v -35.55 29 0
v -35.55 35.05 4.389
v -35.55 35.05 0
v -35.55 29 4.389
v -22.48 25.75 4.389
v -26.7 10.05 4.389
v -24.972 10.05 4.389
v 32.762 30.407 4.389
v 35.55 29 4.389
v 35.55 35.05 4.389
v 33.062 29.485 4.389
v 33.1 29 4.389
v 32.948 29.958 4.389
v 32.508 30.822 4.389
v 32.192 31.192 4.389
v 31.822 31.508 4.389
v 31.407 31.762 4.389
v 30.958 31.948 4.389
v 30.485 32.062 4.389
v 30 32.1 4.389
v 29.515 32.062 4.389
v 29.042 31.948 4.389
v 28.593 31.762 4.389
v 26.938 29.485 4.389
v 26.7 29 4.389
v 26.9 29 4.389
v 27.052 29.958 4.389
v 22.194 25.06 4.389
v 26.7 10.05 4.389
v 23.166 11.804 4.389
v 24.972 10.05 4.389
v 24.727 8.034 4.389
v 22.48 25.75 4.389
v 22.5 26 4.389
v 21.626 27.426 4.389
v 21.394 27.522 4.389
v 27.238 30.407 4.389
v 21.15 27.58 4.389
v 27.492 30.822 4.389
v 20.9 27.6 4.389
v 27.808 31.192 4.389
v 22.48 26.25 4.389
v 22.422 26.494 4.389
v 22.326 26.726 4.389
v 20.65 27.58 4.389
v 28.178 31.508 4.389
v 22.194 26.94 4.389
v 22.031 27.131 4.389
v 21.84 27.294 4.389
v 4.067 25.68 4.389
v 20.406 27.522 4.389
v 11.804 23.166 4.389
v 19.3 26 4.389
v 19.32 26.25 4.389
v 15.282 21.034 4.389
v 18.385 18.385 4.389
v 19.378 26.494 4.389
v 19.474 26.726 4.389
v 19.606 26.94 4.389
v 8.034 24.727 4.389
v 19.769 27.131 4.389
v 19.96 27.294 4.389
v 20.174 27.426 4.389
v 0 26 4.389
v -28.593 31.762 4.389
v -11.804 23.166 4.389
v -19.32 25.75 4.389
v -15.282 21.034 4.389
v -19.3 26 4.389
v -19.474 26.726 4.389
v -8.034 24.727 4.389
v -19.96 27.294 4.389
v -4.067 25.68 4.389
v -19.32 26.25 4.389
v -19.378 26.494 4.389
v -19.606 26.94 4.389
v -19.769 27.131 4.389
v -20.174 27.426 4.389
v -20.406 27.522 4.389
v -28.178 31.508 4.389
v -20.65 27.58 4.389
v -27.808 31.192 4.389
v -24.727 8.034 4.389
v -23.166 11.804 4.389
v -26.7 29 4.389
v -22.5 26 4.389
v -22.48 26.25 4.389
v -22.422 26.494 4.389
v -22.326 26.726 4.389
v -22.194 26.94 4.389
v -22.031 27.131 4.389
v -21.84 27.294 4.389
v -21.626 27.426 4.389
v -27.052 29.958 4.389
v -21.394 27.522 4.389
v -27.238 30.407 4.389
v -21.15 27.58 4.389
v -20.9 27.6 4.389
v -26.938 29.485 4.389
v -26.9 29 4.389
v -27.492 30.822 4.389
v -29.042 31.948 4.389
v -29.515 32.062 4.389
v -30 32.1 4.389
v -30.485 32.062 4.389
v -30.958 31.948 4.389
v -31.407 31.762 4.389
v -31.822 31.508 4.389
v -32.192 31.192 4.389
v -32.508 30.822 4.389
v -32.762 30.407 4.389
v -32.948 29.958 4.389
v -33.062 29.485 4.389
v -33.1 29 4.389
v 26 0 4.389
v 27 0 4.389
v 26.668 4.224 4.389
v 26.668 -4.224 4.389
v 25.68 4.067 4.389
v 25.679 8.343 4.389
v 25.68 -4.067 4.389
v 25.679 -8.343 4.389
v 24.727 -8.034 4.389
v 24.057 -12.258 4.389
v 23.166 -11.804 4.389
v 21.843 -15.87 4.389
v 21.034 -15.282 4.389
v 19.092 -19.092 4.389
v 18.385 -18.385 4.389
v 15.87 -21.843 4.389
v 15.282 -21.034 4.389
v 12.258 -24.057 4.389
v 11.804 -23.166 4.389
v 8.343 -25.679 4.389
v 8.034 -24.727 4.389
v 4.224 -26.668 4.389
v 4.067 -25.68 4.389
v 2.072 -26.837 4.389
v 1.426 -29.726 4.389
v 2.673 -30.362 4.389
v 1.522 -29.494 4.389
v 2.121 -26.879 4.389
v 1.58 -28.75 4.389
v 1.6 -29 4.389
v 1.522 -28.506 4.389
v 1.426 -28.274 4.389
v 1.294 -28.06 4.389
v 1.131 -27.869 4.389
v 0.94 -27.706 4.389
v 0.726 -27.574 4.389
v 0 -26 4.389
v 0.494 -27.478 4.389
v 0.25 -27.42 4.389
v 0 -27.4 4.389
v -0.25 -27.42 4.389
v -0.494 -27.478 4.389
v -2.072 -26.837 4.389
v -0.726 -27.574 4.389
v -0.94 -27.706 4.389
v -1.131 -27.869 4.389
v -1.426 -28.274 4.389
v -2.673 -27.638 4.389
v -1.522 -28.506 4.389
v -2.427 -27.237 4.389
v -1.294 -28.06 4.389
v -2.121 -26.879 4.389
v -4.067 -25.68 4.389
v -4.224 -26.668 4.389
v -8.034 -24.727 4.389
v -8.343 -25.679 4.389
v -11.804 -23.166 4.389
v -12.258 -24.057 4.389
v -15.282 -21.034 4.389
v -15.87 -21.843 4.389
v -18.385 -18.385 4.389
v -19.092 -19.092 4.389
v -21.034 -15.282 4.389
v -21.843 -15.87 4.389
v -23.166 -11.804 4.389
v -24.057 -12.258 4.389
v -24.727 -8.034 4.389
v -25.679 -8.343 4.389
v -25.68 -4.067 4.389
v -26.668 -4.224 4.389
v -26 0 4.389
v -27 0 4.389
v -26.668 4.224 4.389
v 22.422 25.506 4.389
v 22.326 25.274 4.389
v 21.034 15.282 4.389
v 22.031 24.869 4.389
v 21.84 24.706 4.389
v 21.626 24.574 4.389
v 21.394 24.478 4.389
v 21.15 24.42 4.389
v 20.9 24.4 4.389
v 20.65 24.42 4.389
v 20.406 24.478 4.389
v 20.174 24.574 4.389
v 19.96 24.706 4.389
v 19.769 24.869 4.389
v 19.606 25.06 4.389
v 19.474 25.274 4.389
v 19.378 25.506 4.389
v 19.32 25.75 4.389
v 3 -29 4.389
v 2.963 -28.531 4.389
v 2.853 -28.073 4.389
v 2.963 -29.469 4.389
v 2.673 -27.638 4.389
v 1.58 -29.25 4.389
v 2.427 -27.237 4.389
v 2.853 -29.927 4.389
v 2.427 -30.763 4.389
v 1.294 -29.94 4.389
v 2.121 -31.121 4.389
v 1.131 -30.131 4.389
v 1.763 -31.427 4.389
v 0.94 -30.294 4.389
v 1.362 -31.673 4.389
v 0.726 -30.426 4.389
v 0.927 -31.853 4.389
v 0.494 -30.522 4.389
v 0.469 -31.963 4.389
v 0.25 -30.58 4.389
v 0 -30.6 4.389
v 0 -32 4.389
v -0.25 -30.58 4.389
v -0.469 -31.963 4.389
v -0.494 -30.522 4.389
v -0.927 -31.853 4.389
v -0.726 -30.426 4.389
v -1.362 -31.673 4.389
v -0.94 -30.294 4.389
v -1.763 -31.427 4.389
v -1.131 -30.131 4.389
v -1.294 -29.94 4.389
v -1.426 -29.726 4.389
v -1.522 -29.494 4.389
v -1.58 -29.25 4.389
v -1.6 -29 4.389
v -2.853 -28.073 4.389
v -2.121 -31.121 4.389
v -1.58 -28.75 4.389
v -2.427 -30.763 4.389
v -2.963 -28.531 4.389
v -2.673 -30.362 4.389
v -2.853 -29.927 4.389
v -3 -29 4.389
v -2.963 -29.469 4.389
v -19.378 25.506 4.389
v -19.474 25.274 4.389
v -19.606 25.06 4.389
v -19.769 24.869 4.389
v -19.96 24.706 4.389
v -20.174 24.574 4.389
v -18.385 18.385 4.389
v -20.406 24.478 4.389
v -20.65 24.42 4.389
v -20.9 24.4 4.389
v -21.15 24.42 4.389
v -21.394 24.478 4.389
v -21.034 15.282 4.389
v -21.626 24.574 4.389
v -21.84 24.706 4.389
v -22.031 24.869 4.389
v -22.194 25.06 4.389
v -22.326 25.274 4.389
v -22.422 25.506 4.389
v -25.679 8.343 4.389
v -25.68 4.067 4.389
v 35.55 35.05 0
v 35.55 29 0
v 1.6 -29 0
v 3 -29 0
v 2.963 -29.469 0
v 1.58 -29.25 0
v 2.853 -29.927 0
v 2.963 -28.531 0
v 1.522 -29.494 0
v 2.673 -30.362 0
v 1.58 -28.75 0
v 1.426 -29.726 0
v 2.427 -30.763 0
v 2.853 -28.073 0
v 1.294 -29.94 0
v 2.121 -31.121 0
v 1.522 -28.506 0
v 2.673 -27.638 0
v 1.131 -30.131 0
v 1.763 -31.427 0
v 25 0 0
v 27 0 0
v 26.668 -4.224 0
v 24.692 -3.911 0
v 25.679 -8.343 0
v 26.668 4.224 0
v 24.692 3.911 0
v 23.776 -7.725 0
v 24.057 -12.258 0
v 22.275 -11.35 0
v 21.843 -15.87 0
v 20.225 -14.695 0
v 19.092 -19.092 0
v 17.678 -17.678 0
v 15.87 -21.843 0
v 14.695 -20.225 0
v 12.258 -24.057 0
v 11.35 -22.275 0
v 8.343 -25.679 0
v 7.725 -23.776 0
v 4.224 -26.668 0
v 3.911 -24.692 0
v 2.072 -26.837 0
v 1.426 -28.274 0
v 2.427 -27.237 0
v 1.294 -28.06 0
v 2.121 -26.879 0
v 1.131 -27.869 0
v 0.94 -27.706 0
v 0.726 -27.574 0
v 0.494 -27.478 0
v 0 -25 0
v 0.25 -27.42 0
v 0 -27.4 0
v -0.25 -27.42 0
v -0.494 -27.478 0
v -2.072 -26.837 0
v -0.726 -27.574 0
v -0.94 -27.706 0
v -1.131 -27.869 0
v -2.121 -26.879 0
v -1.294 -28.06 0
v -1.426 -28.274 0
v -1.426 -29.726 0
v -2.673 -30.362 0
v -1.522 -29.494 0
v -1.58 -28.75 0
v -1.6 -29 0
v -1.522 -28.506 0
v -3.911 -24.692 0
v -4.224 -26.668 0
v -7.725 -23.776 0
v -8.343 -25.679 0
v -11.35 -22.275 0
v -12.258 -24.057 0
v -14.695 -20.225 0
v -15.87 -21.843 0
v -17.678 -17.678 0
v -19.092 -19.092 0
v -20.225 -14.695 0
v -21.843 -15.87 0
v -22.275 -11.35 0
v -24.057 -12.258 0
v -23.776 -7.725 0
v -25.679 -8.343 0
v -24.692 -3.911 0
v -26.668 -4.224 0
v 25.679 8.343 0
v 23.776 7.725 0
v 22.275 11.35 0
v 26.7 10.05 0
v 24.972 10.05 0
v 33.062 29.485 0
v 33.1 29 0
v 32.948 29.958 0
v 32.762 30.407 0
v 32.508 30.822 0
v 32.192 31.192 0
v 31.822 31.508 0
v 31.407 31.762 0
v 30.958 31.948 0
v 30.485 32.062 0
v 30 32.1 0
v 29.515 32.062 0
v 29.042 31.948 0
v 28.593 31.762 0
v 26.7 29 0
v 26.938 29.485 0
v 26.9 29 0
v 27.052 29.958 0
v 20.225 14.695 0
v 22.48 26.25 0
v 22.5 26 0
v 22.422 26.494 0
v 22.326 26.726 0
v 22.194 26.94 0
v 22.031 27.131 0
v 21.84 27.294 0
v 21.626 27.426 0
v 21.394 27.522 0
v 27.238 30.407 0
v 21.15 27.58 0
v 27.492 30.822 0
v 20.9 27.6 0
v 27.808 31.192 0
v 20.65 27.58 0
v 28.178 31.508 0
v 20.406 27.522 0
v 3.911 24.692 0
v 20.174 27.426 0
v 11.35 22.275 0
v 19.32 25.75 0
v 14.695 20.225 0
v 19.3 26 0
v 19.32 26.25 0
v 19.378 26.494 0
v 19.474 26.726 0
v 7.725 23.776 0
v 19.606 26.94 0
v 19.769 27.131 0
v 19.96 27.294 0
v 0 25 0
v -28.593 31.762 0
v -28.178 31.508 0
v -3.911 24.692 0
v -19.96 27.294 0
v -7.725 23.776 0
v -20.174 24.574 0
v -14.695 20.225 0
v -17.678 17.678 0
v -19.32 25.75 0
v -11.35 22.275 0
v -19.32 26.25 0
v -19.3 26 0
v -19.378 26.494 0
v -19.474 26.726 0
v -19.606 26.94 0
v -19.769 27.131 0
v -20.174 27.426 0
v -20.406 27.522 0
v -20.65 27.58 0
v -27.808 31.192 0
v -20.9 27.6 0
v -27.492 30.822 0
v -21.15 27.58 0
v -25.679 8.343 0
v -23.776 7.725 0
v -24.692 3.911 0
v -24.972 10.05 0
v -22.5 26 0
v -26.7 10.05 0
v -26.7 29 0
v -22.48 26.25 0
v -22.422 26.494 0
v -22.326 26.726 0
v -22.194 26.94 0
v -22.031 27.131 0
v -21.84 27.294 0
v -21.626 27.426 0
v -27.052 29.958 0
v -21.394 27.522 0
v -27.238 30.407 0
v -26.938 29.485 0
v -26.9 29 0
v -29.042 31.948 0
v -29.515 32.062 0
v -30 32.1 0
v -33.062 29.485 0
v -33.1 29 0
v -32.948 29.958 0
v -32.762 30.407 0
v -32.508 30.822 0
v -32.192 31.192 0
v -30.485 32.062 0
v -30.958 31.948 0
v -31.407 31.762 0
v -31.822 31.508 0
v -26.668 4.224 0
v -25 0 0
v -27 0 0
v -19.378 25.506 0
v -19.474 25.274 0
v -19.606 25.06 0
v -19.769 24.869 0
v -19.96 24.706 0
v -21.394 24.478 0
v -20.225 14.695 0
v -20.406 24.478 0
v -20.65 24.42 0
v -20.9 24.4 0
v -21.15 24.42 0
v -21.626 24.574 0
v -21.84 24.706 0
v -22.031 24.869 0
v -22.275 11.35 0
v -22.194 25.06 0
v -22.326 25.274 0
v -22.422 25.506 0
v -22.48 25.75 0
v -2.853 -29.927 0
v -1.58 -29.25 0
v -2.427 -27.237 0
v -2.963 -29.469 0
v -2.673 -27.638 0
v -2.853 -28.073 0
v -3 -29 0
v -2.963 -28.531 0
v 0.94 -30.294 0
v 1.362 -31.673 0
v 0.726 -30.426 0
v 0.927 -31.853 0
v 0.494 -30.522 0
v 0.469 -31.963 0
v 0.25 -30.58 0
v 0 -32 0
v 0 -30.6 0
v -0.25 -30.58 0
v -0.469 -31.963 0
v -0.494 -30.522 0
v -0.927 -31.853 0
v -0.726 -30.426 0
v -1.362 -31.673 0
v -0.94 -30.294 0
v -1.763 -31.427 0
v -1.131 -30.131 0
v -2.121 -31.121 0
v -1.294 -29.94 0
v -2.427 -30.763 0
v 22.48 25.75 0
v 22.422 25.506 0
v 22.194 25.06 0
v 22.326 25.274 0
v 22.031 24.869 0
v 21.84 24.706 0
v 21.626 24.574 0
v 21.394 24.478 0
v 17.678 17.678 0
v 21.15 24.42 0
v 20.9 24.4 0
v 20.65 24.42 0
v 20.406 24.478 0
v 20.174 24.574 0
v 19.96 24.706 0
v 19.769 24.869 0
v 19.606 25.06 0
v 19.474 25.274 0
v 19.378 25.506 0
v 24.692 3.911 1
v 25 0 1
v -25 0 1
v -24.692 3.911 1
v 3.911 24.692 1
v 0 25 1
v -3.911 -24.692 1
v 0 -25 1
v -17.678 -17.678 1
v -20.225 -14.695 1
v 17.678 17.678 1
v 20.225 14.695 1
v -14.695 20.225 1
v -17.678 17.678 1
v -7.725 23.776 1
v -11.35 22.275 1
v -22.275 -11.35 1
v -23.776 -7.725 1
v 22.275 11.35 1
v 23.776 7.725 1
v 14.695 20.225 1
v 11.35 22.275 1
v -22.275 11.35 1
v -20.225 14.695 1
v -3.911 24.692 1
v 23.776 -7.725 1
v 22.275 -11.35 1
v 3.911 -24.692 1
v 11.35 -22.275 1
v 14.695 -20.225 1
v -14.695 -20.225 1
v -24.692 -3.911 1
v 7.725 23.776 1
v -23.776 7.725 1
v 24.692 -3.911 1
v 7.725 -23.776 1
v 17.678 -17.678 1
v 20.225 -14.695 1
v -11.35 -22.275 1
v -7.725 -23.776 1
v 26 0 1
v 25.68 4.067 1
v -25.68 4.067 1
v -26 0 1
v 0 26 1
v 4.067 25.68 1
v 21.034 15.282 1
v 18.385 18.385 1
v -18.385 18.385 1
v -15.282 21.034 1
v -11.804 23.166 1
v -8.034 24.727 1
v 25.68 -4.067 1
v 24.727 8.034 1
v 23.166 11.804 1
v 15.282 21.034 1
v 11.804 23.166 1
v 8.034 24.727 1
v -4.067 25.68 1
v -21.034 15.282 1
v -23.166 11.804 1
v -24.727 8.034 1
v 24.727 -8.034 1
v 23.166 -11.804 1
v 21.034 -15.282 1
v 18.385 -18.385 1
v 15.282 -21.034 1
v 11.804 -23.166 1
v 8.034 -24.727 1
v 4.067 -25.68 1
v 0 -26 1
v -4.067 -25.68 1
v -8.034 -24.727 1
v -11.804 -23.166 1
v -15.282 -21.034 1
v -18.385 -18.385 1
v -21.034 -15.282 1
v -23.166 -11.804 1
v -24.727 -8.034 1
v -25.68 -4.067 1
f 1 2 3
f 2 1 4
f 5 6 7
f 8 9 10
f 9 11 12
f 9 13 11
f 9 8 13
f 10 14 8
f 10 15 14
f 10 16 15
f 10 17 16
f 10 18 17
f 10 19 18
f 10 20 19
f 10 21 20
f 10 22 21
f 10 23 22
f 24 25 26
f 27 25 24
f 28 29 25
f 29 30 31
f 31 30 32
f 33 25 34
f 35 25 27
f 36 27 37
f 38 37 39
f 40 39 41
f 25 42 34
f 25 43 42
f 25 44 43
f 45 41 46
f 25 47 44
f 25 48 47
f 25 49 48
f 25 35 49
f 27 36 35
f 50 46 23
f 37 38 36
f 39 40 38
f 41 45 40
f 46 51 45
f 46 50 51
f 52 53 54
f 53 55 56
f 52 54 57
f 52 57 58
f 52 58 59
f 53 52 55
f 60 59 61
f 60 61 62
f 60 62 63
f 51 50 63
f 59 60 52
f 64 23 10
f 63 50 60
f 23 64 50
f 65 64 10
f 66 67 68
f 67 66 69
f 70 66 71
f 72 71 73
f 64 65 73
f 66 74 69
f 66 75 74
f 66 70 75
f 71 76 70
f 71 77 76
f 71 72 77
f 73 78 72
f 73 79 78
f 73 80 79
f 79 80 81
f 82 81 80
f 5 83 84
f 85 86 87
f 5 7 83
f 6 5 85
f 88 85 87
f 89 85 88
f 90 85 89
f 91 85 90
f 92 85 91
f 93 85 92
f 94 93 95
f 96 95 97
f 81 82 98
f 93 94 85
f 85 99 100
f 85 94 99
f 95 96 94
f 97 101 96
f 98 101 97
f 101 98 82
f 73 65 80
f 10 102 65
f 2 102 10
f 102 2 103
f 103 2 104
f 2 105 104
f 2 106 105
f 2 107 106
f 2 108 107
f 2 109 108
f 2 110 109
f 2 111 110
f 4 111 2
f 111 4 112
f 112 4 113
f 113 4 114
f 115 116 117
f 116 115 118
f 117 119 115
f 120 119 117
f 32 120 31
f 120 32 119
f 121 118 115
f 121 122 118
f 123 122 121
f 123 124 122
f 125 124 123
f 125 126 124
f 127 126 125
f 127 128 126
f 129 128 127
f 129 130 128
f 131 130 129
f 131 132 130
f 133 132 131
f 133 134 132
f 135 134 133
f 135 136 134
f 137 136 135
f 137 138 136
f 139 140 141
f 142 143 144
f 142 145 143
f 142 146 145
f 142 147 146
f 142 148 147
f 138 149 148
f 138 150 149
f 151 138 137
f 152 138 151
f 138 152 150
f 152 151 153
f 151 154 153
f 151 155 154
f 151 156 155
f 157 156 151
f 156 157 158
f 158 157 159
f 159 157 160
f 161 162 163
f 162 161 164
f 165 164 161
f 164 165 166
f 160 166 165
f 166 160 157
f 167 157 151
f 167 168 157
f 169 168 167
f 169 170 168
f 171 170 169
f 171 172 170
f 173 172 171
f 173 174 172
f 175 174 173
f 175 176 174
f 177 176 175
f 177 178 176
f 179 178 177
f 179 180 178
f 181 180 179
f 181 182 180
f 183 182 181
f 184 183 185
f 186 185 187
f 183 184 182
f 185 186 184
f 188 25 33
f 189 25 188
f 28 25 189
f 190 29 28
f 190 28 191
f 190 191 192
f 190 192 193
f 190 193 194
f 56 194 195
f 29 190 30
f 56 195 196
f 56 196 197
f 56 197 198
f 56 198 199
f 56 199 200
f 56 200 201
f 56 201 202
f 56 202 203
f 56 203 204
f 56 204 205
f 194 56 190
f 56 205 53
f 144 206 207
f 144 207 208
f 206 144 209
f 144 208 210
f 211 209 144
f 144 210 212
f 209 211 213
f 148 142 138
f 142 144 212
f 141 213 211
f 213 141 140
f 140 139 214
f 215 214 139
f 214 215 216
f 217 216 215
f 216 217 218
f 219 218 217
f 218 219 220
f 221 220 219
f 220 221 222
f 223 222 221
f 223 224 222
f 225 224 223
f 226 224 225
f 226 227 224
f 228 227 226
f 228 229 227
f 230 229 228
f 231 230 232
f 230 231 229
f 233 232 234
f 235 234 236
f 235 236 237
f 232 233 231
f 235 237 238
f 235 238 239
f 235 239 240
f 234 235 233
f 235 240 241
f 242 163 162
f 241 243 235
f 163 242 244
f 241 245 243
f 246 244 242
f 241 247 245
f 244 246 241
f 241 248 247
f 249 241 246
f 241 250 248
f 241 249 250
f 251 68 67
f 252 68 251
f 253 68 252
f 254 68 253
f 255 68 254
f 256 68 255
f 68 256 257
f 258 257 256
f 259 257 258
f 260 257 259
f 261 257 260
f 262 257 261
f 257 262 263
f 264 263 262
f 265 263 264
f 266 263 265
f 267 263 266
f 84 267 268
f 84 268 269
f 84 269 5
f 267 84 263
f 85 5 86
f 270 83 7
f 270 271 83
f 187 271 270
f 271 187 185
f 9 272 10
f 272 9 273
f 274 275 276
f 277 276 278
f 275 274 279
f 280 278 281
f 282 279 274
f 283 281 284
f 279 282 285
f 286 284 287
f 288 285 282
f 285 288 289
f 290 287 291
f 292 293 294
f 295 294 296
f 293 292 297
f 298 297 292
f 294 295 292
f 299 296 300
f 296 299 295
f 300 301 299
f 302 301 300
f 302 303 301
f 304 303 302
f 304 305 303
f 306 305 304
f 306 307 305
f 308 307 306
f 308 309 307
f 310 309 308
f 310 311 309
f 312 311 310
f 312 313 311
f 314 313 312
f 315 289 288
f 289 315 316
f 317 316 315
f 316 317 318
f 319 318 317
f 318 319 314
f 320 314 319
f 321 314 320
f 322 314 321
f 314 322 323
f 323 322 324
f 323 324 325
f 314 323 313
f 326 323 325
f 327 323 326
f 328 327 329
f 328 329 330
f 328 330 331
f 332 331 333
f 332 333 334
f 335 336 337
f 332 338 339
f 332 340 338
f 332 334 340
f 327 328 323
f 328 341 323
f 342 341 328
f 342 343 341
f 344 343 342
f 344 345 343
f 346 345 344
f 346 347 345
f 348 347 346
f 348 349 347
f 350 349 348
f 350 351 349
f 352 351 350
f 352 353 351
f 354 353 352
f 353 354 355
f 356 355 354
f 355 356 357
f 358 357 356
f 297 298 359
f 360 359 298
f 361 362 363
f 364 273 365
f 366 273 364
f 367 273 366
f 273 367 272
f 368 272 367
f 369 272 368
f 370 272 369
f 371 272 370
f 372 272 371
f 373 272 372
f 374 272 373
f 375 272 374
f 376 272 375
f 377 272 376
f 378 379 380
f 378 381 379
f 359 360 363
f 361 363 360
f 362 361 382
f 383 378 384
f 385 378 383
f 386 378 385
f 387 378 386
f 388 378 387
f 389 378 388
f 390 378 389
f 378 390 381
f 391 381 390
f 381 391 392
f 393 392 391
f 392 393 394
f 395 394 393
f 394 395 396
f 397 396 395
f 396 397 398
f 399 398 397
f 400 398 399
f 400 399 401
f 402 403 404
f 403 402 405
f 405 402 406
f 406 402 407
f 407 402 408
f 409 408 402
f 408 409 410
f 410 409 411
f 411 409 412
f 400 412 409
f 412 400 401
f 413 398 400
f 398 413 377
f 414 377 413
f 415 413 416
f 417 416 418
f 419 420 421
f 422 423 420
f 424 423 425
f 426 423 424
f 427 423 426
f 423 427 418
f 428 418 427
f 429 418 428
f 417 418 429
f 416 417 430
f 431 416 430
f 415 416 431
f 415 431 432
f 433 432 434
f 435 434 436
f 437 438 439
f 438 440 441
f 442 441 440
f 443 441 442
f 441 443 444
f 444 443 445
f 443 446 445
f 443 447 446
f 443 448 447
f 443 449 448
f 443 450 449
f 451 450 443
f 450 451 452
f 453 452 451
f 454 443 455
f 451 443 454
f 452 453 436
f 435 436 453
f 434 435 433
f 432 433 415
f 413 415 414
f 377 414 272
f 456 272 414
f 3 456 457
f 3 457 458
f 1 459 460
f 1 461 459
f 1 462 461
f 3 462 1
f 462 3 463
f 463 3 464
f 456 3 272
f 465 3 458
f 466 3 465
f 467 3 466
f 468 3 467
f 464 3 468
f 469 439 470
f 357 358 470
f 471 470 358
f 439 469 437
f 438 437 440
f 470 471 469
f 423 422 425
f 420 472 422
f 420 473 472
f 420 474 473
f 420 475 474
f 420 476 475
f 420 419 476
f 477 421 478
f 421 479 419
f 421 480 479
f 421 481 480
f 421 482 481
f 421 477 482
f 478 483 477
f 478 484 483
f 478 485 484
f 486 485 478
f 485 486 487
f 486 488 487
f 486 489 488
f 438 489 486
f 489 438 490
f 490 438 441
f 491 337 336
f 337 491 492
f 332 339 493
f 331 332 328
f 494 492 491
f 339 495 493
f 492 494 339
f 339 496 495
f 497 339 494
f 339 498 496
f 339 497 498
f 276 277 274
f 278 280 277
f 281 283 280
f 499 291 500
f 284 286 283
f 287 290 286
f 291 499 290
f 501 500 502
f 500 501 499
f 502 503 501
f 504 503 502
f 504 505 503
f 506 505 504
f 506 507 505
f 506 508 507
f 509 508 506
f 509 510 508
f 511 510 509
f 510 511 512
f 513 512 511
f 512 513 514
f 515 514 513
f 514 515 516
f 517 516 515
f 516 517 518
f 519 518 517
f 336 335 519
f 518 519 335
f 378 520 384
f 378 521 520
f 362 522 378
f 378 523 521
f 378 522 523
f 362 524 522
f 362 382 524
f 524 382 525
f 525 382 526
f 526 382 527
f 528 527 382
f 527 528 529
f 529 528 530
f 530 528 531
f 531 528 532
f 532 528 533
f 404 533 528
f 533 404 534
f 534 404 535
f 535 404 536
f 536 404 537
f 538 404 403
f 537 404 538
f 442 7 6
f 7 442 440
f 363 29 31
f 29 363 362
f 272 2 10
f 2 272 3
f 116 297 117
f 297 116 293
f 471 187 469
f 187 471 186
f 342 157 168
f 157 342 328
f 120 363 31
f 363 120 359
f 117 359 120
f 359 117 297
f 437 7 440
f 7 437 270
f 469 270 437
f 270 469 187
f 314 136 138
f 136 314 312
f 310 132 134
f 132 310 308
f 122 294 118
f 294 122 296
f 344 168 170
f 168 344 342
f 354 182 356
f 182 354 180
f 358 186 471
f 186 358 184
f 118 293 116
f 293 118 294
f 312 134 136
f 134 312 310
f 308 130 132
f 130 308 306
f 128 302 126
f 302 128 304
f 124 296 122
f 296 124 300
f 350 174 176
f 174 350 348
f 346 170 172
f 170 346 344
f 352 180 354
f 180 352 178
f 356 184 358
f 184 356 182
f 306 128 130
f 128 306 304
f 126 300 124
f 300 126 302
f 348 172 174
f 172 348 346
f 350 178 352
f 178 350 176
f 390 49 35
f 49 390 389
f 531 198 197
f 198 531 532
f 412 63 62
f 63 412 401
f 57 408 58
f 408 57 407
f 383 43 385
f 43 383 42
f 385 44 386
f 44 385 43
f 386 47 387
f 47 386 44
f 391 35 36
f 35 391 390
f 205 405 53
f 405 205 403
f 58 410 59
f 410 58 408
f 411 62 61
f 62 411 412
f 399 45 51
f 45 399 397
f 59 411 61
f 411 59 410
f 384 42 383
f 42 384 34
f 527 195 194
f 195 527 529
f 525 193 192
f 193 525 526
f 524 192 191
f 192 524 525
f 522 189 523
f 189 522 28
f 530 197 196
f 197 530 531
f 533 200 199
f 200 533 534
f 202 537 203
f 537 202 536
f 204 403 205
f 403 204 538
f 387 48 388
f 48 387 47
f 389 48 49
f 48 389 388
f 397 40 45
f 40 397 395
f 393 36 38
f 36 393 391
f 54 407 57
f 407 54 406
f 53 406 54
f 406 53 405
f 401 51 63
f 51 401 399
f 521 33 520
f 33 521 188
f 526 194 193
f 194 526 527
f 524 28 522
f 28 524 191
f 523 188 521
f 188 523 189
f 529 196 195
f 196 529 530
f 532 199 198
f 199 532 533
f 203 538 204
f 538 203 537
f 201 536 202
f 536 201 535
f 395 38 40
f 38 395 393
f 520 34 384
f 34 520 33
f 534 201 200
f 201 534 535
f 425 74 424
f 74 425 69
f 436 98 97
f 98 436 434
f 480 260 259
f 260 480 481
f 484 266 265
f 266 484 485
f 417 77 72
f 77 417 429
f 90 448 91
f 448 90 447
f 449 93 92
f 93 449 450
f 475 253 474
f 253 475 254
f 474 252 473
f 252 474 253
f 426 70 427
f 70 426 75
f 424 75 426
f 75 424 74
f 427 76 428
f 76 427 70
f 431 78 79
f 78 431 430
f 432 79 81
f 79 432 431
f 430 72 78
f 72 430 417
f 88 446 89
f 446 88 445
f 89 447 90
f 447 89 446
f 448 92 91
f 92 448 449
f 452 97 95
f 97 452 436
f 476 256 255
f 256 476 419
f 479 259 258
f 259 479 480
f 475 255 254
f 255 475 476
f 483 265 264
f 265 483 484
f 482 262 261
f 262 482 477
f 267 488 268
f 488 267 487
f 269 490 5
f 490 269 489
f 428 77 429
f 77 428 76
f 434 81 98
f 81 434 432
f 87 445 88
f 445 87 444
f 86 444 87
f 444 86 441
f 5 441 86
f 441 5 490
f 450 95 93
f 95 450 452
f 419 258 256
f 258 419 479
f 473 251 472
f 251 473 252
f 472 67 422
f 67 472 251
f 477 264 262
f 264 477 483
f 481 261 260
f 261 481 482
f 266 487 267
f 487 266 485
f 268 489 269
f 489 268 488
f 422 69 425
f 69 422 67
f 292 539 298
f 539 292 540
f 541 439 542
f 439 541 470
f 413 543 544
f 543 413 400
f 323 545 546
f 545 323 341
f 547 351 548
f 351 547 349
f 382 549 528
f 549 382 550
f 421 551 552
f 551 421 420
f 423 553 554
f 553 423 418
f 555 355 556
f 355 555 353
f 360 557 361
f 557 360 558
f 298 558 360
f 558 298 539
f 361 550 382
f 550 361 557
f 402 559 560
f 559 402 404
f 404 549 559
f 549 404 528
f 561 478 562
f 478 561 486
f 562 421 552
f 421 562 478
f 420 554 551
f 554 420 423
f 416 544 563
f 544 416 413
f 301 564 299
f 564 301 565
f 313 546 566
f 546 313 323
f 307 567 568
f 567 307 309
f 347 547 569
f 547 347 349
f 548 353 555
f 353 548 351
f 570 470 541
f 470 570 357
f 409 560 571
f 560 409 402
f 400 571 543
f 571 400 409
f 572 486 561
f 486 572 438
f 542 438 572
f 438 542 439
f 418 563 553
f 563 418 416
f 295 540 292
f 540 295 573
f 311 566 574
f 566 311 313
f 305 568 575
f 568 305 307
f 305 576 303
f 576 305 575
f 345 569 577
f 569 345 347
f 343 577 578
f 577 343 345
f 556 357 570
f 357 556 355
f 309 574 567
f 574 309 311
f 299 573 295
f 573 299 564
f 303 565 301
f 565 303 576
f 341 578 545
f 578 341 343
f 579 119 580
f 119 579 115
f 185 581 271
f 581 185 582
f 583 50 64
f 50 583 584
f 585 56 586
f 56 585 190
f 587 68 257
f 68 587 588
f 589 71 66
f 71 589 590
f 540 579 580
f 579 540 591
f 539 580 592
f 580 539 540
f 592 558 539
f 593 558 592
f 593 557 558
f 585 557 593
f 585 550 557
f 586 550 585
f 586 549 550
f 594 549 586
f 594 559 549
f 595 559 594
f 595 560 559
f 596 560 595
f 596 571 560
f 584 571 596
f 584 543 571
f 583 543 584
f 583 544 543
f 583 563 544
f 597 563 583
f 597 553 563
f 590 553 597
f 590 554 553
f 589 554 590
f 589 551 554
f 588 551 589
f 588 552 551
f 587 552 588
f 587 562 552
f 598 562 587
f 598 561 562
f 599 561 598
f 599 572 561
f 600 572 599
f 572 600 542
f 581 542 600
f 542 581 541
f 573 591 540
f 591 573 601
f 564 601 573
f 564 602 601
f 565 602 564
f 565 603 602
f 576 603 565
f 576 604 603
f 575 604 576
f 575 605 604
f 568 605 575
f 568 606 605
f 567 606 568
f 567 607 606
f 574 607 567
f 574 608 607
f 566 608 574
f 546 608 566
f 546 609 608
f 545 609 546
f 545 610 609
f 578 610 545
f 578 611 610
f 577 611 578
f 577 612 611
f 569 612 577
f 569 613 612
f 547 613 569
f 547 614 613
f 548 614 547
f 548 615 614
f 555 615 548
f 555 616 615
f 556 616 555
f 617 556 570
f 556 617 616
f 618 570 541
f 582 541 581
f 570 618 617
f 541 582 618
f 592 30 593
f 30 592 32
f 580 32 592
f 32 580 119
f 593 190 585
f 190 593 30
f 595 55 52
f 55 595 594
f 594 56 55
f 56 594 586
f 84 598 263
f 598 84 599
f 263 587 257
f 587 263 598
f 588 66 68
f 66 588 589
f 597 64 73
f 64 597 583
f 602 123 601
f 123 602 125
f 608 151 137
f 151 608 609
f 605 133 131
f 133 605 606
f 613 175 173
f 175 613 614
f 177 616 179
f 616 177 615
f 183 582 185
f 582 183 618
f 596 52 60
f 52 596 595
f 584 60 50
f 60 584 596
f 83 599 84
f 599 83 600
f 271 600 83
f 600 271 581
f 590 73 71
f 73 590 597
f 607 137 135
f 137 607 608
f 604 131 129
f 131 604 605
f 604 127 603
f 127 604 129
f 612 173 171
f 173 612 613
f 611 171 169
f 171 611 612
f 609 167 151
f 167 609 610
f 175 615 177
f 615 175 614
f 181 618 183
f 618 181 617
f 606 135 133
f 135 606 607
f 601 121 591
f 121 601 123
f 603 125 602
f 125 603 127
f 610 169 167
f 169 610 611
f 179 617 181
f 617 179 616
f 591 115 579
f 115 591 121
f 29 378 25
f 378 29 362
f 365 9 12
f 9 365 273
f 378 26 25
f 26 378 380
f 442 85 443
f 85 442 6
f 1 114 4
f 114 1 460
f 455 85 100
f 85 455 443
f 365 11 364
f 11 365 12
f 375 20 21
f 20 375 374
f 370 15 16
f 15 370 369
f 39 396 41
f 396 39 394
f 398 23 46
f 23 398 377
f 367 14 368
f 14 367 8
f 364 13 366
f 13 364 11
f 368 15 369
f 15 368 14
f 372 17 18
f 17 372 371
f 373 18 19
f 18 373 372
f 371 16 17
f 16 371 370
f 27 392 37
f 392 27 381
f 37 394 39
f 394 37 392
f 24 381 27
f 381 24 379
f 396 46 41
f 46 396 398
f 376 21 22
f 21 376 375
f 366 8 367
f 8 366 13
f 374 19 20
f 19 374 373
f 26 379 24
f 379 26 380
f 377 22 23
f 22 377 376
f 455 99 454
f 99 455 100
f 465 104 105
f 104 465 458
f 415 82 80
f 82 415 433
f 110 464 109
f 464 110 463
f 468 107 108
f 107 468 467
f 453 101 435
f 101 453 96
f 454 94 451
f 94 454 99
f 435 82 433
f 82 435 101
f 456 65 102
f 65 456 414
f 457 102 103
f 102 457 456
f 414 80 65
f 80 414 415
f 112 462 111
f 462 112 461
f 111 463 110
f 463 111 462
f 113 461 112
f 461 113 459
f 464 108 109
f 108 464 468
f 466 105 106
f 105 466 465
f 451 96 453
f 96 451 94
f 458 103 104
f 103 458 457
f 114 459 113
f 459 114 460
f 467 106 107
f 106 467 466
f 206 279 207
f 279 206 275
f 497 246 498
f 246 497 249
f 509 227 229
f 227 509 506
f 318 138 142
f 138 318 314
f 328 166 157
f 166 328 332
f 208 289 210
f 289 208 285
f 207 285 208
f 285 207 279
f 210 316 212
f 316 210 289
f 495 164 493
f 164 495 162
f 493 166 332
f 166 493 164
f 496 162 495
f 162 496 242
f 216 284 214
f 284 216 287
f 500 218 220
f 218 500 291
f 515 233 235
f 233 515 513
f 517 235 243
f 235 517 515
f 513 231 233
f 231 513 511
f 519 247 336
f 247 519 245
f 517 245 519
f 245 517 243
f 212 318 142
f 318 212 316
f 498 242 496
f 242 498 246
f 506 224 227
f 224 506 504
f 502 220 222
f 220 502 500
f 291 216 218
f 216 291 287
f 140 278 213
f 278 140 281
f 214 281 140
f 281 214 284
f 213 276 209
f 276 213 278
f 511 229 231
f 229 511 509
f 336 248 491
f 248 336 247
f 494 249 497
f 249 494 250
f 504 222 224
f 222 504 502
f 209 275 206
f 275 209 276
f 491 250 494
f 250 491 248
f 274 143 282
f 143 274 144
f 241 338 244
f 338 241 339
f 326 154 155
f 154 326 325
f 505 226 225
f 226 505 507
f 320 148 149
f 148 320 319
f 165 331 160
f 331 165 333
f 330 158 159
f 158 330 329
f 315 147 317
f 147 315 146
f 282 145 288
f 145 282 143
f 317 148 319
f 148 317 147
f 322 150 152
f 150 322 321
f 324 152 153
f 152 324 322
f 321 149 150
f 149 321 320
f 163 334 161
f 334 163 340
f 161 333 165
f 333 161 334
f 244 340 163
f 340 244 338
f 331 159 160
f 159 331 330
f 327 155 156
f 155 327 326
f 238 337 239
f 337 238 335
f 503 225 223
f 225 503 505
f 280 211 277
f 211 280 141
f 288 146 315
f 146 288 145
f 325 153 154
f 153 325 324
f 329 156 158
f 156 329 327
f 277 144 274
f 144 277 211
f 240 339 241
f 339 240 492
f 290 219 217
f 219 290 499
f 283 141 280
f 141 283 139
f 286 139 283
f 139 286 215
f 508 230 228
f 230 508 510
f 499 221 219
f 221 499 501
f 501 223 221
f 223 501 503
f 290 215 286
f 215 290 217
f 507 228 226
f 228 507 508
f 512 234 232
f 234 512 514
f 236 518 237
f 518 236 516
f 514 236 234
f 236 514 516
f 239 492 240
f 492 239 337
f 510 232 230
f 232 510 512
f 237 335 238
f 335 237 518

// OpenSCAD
////////////////////////////
//   ND filter holder for //
//   Thorlabs cage system //
//    CC BY SA 4.0        //
//   Chagas, AM 20220126  //
////////////////////////////


rodD = 6;
rodL = 20;
cageL = 71.1;
interRodDistance = 60;

filterD = 51.8;
filter1T = 5/3.6;
filter2T = 5/3.6+0.4;

sockT = 6;

tol = 0.1;
$fn=40;

filterThick=filter1T+3;

difference(){
            union(){
translate([0,cageL/2-rodD-7,filterThick/2]){
        cube([cageL,25,filterThick],center=true);
}//translate
cylinder(d=filterD+2*tol+2,h=filterThick);
}//union
    union(){
    translate([filterD/2-5,(filterD)/2+tol,-0.1]){
    cylinder(d=3+2*tol,h=filterThick+10);
    }
    translate([-filterD/2+5,(filterD)/2+tol,-0.1]){
    cylinder(d=3+2*tol,h=filterThick+10);
    }
    translate([0,0,-1]){
cylinder(d=filterD+2*tol-2,h=sockT+5);
    }//translate
    translate([0,0,+1]){
cylinder(d=filterD+2*tol,h=sockT+5);
    }//translate
    
    translate([(interRodDistance)/2+2.2,19,(filterThick+5)/2-0.1]){
cube([rodD+5,20,10],center=true);
    }//end translate
translate([-(interRodDistance+rodD)/2+0.8,19,(filterThick+5)/2-0.1]){
cube([rodD+5,20,10],center=true);
    }//end translate
       translate([(interRodDistance)/2,interRodDistance/2-1,0]){
    cylinder(d=rodD+2*tol,h=rodL,center=true);}
//end translate

    translate([-(interRodDistance)/2,interRodDistance/2-1,0]){
    cylinder(d=rodD+2*tol,h=rodL,center=true);}
//end translate  
}//union
}//difference


translate([0,-(filterD)/2-3-tol,0]){
difference(){
cylinder(d=6,h=filterThick);
    translate([0,0,-0.1])
    cylinder(d=3+2*tol,h=filterThick+10);
}//end difference
}
